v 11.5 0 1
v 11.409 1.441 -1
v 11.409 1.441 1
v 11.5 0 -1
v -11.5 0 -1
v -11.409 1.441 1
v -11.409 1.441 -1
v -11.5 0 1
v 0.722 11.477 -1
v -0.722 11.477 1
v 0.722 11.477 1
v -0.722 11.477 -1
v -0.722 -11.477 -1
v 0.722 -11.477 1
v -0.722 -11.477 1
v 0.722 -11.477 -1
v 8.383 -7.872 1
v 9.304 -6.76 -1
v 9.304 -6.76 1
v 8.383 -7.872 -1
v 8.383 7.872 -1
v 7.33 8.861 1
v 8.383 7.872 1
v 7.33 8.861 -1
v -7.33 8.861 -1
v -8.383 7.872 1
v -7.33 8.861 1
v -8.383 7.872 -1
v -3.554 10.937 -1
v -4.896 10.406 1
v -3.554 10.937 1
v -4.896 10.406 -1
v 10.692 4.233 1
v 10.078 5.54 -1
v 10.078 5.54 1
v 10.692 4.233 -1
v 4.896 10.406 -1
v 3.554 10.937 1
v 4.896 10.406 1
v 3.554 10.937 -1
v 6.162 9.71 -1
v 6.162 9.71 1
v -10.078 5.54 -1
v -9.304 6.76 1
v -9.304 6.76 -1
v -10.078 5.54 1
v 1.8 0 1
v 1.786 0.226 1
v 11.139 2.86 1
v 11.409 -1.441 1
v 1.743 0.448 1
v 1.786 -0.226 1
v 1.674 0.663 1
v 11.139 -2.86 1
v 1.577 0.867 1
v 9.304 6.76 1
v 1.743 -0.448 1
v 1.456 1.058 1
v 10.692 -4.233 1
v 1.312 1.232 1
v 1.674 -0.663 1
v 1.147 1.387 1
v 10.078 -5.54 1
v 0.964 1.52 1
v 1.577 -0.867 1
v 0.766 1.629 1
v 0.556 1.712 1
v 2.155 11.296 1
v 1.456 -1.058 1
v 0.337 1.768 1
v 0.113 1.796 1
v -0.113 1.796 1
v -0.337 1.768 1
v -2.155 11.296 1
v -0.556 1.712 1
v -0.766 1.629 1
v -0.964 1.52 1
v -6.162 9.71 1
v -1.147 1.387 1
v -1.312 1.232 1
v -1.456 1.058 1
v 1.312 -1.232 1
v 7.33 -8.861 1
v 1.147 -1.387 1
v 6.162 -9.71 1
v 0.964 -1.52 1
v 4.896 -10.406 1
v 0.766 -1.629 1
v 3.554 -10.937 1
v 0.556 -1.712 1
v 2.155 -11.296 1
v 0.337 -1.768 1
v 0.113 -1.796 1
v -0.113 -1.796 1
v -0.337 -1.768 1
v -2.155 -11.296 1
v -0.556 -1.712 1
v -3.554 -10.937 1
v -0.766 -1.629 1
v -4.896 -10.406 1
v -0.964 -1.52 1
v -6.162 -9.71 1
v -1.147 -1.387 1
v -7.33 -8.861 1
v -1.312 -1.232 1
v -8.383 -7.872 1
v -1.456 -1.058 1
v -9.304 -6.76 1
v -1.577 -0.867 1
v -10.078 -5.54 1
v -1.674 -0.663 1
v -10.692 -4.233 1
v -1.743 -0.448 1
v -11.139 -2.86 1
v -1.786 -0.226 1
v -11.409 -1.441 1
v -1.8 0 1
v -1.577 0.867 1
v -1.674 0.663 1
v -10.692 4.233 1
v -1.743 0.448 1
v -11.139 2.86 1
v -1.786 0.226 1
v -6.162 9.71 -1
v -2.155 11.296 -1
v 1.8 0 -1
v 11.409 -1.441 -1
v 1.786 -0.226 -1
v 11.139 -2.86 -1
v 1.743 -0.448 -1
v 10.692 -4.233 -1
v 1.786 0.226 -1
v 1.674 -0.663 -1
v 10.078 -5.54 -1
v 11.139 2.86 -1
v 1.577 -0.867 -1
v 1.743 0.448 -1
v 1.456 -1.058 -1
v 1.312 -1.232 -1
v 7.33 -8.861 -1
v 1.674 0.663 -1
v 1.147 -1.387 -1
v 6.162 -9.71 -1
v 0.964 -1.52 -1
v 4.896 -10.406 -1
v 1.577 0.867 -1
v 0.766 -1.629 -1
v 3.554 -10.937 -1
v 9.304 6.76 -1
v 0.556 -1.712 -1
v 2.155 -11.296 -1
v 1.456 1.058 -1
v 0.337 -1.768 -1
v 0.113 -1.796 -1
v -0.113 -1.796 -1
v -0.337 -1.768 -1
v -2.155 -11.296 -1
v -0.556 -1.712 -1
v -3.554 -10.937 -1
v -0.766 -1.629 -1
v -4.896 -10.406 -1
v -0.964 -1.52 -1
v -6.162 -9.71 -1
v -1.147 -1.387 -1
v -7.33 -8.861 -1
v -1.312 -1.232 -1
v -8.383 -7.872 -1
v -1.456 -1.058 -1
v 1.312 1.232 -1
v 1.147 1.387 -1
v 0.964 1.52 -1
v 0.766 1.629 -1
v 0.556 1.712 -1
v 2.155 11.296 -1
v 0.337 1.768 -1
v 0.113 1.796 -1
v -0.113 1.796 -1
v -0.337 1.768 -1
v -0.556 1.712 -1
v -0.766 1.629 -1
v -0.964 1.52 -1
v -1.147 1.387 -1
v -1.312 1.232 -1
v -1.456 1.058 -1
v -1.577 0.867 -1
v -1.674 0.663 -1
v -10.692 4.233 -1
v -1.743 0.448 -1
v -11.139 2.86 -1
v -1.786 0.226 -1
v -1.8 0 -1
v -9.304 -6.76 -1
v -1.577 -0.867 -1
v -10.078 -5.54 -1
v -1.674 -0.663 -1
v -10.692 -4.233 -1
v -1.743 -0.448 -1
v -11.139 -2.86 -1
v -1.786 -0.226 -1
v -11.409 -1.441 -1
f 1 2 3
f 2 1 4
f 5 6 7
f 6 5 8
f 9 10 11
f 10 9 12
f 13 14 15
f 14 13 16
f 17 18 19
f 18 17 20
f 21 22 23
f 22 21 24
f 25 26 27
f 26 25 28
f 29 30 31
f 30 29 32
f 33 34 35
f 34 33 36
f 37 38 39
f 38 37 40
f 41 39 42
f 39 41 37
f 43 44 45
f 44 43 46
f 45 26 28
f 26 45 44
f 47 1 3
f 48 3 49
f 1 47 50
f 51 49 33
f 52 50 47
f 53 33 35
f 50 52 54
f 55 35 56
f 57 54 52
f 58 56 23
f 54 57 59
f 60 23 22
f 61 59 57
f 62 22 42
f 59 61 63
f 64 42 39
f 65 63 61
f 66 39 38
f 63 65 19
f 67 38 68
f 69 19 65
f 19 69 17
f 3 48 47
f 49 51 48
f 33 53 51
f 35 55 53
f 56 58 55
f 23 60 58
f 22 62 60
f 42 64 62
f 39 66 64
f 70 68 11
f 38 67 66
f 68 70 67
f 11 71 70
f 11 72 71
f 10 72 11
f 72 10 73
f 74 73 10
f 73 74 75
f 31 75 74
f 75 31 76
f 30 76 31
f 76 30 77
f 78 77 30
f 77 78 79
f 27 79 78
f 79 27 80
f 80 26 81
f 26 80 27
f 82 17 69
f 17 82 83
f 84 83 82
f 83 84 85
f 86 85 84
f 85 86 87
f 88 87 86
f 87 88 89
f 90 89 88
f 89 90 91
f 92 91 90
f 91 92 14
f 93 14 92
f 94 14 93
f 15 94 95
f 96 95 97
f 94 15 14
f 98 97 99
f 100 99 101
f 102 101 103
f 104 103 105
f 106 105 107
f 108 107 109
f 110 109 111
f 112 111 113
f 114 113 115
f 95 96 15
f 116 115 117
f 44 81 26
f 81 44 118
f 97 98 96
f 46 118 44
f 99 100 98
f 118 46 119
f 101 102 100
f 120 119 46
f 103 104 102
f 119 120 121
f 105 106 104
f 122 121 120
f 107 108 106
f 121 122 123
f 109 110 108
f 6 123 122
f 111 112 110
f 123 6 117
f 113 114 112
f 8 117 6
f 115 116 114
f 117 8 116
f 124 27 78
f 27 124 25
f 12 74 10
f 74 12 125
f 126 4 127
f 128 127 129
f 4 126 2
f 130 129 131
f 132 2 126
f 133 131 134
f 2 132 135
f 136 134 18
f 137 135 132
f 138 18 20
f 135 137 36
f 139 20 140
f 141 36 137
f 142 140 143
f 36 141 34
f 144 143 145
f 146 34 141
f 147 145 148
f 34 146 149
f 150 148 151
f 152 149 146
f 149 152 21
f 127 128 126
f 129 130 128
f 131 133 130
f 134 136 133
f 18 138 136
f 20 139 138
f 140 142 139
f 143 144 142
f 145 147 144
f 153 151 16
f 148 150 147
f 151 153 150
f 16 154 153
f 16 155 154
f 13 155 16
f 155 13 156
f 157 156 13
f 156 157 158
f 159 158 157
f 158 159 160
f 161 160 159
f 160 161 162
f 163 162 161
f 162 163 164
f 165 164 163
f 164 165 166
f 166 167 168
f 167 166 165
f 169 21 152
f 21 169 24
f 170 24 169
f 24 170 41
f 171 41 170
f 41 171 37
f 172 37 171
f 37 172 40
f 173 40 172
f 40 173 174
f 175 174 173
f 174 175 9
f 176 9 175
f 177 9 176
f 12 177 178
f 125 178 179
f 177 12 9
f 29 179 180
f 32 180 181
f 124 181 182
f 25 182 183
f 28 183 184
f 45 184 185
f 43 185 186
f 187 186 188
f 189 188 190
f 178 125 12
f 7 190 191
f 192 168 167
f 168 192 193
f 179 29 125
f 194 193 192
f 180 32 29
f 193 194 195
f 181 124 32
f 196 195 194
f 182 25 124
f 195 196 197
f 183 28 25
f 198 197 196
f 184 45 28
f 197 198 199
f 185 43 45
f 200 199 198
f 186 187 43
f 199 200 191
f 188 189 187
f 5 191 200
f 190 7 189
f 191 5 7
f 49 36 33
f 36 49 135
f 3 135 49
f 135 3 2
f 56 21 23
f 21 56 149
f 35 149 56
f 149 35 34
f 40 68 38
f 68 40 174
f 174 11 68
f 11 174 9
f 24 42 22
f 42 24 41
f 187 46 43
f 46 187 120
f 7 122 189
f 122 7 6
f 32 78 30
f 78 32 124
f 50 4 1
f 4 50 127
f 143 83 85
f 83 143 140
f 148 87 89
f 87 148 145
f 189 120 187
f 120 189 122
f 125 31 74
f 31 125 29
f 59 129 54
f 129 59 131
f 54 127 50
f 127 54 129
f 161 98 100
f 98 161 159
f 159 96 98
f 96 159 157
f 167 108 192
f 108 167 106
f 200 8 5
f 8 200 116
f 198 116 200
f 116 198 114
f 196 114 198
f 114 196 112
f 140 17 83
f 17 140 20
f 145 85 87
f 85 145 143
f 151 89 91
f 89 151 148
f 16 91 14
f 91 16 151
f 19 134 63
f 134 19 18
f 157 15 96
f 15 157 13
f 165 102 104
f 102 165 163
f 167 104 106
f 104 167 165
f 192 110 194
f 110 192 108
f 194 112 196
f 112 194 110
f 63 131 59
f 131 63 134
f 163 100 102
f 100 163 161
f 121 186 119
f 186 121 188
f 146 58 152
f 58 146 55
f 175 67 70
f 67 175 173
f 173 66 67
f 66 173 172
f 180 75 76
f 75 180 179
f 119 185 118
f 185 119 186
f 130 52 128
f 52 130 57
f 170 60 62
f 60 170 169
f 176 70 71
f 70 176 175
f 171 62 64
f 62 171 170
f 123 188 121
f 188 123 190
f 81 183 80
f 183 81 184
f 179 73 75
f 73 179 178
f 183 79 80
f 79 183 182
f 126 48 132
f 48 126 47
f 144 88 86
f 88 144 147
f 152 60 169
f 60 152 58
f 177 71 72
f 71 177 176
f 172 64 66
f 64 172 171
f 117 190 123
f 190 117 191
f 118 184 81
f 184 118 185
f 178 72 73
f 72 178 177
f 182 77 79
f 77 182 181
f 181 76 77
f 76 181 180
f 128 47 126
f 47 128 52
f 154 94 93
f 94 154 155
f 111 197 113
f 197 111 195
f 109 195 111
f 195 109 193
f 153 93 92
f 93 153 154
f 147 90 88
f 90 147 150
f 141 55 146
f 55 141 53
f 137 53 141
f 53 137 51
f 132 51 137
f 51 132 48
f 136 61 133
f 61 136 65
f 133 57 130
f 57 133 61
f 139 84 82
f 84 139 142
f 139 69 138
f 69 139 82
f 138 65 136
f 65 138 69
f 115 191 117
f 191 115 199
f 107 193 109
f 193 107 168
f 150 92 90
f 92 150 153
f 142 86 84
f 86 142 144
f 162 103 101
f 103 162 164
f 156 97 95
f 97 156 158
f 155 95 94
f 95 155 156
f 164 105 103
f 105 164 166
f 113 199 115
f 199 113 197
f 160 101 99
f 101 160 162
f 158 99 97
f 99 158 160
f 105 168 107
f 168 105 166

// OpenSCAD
$fn = 50;


difference() {
	union() {
		translate(v = [0, 0, -1.0000000000]) {
			cylinder(h = 2, r = 11.5000000000);
		}
	}
	union() {
		translate(v = [0, 0, -100.0000000000]) {
			cylinder(h = 200, r = 1.8000000000);
		}
	}
}
